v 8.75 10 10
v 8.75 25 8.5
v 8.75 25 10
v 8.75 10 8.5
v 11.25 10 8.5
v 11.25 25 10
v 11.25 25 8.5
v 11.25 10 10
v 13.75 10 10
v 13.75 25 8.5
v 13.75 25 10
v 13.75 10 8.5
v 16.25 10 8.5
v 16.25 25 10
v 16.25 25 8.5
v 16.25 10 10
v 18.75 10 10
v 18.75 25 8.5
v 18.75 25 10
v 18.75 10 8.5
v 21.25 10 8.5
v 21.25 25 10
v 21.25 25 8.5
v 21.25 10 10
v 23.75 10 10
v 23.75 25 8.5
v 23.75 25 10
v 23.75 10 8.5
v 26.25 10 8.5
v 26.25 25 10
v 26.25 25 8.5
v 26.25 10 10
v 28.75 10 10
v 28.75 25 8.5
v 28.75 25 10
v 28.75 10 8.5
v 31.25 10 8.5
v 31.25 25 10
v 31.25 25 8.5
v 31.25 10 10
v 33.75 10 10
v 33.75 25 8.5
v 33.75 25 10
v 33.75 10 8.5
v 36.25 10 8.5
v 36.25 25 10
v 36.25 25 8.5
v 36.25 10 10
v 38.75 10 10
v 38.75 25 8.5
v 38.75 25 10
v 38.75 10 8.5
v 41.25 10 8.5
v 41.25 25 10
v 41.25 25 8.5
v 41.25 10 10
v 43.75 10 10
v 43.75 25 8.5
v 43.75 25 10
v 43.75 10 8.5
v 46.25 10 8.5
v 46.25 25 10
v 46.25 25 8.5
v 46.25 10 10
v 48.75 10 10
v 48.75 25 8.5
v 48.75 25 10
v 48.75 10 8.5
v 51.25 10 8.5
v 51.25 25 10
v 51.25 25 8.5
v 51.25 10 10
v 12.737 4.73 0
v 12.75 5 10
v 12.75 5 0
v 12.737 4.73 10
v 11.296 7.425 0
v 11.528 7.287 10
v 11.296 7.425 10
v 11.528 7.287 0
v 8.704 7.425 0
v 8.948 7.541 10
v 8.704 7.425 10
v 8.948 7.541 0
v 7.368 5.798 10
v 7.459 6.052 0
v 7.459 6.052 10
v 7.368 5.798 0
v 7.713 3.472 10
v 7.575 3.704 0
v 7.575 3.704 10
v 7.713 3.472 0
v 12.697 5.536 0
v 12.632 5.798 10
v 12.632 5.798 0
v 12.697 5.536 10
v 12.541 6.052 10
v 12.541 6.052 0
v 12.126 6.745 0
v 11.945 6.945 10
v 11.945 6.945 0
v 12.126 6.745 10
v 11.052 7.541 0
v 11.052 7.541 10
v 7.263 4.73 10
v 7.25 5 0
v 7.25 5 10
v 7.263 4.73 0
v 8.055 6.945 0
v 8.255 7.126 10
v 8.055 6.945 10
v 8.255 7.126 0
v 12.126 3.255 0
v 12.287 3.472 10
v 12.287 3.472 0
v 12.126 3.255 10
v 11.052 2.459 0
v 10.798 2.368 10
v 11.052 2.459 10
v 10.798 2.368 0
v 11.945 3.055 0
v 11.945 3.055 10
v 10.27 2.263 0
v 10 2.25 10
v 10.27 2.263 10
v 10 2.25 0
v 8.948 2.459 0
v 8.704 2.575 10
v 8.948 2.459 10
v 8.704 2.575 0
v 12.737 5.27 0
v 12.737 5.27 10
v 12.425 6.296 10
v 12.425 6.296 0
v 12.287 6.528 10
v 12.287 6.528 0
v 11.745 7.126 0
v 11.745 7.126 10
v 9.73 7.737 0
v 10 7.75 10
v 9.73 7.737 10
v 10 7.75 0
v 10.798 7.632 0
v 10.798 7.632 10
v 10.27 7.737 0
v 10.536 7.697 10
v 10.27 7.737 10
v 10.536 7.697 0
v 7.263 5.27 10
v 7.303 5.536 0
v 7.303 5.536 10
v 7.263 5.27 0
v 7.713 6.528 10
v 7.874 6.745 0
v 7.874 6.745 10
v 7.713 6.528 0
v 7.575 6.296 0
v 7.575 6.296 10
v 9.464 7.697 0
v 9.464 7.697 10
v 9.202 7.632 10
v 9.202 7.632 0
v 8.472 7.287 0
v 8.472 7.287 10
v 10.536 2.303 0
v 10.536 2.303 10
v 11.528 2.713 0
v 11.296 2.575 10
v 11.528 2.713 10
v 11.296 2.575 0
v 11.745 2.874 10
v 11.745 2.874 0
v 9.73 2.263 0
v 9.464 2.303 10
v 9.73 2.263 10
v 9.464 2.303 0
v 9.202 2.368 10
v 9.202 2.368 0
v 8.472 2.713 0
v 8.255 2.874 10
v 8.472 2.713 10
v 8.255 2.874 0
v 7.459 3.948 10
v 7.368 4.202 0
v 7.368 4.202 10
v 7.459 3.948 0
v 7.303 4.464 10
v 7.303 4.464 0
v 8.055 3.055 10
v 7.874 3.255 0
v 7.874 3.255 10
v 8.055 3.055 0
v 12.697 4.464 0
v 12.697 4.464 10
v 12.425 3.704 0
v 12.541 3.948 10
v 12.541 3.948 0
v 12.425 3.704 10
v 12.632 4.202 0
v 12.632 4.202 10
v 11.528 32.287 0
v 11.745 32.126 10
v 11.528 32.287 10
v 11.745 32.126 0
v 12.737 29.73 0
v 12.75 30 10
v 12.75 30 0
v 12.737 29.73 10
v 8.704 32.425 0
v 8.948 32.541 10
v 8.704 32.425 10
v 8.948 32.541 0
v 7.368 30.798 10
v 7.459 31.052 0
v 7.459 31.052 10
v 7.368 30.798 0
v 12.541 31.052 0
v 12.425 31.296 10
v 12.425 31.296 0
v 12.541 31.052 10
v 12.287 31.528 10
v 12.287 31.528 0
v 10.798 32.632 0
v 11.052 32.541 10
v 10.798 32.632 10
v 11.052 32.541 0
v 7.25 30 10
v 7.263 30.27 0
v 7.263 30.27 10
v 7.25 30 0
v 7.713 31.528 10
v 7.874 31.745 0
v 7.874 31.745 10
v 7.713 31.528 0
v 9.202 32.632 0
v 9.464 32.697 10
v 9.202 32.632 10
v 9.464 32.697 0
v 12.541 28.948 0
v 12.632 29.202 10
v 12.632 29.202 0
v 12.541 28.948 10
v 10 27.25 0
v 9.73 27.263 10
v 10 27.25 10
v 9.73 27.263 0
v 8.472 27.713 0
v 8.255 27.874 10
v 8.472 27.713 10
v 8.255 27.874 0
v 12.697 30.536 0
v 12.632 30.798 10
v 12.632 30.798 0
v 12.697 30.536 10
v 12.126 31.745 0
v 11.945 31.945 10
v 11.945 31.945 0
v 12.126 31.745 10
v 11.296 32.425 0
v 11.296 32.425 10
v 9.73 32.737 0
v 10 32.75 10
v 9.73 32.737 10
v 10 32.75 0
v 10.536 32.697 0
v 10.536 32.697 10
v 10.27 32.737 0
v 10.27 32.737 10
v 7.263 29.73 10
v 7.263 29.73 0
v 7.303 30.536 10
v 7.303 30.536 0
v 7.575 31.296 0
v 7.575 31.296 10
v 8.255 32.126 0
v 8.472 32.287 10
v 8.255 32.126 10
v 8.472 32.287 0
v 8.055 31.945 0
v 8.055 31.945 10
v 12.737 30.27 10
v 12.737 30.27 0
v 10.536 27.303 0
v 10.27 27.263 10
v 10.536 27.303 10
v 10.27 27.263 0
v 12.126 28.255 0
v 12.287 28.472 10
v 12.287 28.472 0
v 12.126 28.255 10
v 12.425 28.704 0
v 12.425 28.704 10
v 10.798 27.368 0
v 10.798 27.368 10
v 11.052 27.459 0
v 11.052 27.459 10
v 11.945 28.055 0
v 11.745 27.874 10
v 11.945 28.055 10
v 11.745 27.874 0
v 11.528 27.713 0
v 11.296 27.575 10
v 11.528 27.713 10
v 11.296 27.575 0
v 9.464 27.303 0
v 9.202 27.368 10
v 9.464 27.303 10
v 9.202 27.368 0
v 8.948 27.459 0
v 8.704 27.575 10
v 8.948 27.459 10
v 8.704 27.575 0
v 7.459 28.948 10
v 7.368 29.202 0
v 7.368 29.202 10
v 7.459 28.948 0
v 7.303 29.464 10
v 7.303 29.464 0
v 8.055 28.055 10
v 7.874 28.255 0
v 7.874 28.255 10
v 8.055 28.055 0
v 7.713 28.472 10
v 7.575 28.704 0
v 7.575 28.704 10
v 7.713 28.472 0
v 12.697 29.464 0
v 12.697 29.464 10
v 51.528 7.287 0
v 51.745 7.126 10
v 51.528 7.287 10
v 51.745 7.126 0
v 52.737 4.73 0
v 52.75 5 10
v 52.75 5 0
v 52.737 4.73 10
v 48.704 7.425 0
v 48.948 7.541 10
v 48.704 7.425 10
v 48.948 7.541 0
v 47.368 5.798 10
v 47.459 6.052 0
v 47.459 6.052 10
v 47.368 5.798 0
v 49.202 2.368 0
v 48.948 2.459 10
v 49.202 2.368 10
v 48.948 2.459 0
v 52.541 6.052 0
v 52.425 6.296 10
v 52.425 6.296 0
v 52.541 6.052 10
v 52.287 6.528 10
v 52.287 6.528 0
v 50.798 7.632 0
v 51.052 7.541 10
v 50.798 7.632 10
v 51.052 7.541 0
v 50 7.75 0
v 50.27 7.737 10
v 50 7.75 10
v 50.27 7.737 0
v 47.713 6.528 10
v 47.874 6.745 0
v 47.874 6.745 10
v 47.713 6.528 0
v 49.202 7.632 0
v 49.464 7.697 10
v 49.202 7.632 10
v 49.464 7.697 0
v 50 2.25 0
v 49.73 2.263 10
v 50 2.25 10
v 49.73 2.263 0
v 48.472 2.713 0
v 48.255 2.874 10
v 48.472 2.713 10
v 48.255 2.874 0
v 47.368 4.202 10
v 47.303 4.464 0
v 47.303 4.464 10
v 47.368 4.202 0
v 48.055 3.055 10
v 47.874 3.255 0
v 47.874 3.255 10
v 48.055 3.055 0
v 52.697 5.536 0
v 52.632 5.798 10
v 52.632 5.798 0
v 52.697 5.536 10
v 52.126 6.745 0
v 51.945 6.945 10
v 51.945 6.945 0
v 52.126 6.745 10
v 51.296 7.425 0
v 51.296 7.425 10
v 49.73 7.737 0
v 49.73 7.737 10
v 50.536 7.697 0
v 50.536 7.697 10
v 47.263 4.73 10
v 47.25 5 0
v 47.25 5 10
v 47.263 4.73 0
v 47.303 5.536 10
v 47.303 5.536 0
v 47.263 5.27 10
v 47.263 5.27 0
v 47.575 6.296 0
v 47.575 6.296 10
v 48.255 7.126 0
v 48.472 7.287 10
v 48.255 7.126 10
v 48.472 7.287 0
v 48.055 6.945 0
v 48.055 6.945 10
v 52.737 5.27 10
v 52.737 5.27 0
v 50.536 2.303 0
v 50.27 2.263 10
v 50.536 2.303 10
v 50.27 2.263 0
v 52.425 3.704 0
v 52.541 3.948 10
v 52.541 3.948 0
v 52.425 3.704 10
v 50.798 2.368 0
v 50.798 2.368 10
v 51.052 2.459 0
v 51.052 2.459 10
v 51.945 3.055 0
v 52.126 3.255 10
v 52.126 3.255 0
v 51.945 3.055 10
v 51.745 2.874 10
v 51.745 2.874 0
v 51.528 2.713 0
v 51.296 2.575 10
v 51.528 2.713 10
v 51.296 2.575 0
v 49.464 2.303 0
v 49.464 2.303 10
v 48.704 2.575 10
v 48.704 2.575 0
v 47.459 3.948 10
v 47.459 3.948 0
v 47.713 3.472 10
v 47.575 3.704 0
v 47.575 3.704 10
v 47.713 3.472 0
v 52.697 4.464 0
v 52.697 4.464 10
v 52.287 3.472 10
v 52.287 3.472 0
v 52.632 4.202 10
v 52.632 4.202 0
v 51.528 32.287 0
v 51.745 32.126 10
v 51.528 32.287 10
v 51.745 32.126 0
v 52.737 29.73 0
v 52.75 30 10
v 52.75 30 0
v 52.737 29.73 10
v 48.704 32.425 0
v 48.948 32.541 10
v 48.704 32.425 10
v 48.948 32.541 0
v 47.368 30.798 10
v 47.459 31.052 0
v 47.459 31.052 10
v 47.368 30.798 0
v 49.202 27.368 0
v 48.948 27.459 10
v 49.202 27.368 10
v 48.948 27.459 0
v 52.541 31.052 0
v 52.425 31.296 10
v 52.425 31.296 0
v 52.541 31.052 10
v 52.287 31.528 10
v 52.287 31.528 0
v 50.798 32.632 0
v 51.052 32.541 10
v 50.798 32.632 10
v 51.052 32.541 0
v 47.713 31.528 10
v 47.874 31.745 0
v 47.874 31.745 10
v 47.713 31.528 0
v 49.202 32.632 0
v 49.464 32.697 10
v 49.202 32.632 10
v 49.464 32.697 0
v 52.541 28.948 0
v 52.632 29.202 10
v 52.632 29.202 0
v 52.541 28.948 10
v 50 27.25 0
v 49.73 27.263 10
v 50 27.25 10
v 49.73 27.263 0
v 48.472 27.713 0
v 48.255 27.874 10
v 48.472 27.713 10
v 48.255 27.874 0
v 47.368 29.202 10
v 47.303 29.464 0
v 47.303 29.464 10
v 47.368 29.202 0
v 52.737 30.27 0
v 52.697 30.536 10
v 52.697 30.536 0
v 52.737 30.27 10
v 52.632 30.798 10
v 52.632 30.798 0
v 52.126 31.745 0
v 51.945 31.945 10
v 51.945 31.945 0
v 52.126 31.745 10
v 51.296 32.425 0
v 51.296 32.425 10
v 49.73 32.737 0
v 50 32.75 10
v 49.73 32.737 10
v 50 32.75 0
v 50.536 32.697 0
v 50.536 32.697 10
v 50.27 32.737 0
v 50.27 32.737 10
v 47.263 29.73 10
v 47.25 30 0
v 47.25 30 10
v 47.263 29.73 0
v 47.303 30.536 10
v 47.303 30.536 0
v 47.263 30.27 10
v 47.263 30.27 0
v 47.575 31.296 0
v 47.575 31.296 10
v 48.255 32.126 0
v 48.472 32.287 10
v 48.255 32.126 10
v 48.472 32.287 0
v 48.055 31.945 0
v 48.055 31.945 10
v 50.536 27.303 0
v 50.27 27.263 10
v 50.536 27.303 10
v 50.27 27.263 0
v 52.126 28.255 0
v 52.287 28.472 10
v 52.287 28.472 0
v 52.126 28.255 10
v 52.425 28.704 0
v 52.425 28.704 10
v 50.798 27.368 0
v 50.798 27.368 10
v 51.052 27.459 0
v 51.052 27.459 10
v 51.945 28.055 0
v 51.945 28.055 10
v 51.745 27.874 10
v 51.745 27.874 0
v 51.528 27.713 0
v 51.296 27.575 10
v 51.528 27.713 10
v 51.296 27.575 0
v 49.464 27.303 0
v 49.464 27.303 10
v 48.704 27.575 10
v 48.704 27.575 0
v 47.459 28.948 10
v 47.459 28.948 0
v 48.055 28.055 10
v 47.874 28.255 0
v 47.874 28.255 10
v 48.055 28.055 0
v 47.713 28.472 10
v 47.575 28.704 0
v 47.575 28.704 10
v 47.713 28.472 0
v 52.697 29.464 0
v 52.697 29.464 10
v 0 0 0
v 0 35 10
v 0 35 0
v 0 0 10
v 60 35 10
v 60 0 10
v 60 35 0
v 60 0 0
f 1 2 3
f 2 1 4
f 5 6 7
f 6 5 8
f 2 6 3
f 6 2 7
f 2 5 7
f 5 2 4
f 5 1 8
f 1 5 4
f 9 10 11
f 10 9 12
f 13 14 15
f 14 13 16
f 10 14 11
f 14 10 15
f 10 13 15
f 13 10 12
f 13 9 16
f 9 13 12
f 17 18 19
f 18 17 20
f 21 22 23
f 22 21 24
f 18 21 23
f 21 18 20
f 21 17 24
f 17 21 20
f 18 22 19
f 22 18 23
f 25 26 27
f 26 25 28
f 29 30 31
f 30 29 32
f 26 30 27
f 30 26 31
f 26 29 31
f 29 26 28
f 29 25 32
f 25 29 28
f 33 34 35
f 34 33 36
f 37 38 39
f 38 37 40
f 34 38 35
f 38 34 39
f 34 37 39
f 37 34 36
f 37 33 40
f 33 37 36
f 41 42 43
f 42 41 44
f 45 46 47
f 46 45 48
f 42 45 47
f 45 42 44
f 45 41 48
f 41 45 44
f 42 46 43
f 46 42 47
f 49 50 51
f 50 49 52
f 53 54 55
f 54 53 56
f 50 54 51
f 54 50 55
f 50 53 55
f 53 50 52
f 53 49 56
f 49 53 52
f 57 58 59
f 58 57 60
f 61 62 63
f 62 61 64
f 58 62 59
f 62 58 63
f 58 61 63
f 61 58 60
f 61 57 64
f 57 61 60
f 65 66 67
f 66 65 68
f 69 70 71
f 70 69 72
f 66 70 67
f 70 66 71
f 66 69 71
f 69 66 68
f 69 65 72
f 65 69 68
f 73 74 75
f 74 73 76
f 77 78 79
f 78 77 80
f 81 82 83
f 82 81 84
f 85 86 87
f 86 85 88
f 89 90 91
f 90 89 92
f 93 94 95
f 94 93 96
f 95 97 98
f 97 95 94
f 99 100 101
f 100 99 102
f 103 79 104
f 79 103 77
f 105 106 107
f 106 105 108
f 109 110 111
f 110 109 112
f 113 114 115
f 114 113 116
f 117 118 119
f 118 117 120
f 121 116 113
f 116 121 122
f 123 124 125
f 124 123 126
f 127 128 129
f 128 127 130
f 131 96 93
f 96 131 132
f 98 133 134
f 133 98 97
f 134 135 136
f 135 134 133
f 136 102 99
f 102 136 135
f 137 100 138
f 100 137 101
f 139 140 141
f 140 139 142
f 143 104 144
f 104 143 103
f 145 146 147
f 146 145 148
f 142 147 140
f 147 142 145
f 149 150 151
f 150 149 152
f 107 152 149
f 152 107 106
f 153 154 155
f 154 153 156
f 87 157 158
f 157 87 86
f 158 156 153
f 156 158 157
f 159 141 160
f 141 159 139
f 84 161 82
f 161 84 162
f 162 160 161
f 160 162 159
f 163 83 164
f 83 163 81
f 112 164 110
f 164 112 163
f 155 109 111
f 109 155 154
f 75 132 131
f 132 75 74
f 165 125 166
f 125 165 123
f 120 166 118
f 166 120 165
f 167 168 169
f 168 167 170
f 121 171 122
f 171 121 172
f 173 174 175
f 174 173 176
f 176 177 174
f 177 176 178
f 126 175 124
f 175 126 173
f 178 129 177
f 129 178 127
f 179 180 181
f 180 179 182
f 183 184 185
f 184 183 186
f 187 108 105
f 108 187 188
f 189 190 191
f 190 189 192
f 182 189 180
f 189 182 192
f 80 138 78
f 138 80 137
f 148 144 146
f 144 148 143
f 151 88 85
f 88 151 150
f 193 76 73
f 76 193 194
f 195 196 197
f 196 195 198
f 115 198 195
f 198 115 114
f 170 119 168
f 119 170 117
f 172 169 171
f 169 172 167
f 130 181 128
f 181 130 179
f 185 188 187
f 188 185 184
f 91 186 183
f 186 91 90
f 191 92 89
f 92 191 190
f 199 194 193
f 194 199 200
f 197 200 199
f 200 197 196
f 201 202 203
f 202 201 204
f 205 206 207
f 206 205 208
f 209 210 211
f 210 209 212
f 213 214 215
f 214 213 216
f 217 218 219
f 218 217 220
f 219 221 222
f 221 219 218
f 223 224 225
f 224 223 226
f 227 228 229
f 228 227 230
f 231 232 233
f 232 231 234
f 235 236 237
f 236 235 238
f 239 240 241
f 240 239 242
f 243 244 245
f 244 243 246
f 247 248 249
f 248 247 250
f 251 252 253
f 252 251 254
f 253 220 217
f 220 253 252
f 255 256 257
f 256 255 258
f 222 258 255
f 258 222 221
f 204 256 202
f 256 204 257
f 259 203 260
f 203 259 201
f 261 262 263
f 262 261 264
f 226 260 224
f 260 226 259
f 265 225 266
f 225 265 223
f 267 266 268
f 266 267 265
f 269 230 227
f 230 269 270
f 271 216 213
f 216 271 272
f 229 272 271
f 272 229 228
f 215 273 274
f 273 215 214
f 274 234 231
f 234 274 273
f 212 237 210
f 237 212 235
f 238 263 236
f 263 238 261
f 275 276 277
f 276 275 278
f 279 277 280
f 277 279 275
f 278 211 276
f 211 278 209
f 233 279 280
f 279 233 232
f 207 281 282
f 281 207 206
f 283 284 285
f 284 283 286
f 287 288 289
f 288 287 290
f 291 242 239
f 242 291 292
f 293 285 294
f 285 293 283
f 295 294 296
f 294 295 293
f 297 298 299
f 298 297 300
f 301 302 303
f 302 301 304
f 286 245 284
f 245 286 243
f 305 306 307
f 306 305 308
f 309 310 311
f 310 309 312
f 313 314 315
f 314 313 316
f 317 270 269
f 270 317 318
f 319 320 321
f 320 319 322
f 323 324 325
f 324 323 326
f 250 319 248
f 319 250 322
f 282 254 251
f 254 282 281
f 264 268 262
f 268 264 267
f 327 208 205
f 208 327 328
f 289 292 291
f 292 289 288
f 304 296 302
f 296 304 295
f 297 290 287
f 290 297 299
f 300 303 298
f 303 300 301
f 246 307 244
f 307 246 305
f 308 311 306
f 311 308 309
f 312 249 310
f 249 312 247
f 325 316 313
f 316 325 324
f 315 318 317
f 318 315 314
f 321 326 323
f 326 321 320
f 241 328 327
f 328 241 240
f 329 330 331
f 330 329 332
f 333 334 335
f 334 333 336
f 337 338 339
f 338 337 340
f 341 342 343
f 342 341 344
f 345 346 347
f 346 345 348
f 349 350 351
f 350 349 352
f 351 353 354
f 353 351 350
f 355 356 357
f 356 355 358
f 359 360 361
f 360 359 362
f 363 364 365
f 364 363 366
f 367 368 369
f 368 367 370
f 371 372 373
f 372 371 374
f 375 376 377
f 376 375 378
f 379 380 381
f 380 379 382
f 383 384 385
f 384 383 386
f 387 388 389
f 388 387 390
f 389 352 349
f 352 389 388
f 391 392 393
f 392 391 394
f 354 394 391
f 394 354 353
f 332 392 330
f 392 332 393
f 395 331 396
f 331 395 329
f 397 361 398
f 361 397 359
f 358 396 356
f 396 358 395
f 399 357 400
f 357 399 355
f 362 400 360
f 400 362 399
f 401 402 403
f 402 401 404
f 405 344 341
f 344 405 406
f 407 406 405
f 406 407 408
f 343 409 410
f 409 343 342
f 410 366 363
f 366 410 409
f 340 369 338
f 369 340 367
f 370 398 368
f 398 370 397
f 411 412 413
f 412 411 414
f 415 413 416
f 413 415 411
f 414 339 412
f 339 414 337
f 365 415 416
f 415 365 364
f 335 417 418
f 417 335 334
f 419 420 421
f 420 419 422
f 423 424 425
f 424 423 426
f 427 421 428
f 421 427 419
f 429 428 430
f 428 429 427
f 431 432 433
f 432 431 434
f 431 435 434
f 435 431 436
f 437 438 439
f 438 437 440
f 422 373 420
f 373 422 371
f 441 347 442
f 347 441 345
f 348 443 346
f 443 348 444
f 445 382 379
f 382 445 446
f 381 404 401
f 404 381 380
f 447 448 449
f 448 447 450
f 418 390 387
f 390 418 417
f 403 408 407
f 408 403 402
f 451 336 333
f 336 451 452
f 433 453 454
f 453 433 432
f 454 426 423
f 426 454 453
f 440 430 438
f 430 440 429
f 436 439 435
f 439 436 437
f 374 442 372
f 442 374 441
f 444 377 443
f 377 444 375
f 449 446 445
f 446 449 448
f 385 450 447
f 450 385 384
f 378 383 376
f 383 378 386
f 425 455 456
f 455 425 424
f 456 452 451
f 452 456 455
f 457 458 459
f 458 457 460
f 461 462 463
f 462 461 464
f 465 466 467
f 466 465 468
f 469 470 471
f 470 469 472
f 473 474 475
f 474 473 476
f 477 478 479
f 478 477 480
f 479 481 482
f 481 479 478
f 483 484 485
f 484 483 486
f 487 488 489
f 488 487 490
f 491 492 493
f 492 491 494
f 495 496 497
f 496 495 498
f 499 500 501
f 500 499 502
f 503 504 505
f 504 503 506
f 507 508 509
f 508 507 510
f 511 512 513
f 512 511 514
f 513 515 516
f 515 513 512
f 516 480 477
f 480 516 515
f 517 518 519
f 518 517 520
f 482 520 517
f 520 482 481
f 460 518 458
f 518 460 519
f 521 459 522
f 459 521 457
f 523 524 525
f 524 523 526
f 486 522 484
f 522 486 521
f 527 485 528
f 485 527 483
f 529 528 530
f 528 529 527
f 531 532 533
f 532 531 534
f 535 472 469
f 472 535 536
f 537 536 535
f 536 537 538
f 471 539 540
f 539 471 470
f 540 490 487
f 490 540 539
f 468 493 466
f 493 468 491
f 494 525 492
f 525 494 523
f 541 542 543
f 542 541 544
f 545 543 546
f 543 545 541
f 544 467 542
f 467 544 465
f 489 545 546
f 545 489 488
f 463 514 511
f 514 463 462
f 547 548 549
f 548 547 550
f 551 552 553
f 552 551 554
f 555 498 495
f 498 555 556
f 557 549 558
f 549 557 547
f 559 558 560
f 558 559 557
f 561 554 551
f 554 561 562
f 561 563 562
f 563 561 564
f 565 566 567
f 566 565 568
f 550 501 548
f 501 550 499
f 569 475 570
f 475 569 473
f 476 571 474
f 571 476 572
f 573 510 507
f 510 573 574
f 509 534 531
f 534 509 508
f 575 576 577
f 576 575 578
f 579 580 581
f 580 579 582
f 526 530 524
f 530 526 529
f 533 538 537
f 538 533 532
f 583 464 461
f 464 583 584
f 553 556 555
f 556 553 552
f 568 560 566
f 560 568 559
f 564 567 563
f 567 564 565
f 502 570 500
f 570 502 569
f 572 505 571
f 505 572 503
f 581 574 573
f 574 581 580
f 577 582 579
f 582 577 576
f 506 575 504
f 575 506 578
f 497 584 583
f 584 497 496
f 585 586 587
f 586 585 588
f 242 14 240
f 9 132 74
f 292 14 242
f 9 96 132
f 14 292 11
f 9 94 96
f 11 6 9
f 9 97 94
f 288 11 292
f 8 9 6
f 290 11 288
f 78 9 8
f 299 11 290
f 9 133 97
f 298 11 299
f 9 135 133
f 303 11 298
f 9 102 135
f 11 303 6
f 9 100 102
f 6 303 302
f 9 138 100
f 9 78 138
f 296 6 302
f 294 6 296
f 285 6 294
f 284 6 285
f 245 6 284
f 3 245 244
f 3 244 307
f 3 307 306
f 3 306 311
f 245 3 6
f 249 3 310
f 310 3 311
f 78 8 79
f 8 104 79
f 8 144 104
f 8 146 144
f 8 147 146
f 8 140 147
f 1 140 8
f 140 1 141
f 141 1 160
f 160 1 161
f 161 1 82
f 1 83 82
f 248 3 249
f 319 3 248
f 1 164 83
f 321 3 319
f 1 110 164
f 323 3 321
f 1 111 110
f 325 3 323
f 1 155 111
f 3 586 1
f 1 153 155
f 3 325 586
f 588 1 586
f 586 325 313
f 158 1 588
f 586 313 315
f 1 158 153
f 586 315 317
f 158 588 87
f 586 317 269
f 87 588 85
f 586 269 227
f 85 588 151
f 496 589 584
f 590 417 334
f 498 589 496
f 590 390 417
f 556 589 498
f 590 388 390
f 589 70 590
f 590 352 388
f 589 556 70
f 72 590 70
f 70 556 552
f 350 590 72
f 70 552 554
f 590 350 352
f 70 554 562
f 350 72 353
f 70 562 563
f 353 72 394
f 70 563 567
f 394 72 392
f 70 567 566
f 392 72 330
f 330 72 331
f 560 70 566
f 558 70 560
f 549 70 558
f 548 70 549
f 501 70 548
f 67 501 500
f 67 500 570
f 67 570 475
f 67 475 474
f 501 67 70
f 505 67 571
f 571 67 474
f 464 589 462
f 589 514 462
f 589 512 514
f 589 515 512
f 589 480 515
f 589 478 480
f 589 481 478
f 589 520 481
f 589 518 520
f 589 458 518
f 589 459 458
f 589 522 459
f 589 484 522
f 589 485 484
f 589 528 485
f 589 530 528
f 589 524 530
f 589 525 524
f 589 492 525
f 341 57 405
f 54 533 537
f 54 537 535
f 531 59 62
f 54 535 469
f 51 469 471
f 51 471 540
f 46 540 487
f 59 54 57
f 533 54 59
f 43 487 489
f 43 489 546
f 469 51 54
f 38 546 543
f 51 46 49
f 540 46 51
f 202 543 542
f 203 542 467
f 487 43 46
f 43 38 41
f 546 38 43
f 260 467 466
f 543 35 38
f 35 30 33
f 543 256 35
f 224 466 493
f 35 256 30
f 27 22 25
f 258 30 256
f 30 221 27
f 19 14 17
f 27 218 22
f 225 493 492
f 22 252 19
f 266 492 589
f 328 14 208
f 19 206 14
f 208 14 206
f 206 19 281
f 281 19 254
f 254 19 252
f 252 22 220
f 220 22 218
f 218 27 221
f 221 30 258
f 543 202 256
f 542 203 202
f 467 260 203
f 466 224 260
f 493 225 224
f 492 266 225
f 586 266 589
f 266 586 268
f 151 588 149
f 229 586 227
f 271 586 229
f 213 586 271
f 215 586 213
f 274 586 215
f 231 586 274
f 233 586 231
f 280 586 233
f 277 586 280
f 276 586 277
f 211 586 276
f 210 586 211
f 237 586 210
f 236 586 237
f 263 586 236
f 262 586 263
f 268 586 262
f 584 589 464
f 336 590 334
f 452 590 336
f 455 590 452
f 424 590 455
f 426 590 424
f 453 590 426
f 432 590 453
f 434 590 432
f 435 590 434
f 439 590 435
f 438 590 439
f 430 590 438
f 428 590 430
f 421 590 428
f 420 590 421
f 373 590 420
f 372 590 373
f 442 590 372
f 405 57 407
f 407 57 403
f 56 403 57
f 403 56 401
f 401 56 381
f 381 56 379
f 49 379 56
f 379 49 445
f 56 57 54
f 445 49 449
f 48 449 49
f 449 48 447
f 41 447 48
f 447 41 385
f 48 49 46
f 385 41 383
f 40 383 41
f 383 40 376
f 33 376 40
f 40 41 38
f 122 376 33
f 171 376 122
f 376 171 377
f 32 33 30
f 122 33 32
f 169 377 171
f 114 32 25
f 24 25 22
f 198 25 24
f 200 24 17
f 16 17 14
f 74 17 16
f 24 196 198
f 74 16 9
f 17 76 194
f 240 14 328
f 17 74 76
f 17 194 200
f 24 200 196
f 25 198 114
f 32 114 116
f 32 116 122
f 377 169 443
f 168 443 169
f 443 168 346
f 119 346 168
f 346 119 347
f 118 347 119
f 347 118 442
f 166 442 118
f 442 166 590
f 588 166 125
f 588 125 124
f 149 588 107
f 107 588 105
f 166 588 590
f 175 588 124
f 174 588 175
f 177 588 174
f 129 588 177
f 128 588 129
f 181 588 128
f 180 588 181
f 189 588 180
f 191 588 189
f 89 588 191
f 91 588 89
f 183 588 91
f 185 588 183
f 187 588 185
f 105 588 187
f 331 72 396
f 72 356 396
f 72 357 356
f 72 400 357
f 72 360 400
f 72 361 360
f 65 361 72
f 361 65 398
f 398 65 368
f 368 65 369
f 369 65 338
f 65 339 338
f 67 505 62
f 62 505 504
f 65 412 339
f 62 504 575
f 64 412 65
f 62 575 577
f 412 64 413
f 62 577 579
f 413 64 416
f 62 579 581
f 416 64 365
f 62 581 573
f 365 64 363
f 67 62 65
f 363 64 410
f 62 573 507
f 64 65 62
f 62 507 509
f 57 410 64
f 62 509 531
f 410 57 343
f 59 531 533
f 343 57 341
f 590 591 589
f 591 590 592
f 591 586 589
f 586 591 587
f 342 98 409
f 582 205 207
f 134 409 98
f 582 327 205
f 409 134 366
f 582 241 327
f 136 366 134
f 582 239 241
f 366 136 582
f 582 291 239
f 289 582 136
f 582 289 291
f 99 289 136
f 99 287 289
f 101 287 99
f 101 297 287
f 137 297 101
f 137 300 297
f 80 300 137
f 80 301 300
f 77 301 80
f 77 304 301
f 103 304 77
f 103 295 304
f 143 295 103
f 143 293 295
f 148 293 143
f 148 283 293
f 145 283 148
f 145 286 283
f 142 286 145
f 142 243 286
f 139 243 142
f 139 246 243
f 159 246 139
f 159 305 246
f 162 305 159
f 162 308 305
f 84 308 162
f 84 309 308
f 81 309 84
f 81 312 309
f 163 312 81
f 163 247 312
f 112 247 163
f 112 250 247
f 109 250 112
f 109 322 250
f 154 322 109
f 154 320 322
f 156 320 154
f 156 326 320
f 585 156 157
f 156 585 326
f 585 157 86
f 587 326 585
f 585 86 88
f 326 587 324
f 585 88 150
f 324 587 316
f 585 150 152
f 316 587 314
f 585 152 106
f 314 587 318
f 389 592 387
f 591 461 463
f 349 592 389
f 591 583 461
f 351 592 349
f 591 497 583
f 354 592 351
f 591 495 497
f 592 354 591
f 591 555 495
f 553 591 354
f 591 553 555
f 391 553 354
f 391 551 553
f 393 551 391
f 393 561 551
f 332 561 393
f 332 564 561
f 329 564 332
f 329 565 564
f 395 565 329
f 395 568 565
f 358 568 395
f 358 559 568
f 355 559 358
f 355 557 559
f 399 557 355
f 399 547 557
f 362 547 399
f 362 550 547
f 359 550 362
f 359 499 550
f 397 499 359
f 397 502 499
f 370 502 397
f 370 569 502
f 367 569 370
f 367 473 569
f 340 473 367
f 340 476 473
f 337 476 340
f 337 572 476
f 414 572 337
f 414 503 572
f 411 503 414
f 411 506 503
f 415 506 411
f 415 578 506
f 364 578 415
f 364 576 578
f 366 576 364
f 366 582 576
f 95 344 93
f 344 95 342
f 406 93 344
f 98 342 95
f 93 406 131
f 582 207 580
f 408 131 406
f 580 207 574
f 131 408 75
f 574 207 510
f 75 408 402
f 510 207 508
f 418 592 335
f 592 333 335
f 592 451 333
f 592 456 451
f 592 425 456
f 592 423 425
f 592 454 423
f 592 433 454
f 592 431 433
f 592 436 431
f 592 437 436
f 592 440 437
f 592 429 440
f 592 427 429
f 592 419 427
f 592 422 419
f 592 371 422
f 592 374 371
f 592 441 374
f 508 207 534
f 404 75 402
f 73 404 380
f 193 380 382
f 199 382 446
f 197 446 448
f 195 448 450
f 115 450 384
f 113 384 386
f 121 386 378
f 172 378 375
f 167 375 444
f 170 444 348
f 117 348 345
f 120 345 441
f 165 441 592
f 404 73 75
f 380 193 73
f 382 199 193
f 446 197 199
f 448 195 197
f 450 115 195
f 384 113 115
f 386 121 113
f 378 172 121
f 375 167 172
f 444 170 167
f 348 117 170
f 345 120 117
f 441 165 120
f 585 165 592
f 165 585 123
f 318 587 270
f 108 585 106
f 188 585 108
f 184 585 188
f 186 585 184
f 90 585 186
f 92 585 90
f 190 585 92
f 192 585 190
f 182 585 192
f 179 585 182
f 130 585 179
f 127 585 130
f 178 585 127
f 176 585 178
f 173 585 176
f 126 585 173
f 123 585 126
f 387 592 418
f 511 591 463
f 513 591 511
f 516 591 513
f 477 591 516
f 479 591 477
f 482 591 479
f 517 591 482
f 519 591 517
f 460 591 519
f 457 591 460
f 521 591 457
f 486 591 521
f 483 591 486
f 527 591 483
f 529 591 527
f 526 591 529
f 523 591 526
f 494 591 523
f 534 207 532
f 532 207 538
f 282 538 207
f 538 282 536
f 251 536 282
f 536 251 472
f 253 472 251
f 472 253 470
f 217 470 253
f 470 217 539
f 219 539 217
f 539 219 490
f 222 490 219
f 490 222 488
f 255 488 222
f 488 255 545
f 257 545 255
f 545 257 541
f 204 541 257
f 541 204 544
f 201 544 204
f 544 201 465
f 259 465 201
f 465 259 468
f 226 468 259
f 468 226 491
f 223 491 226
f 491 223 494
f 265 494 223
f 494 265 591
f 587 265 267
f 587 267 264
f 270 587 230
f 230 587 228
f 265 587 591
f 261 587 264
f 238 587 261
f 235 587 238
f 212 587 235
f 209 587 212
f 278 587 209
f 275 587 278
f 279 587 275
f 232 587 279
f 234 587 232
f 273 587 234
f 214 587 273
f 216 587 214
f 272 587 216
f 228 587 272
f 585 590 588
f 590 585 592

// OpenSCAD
// Original MechIntel educational model. CC0-1.0. Units: mm.
// Not a standardized or load-rated component.
$fn=96;
length=60; width=35; thickness=10; belt_width=15; pitch=5; groove_width=2.5; groove_depth=1.5;
$fn=64;
difference(){
 cube([length,width,thickness]);
 for(x=[10:pitch:length-10]) translate([x-groove_width/2,(width-belt_width)/2,thickness-groove_depth]) cube([groove_width,belt_width,groove_depth+1]);
 for(x=[10,length-10]) for(y=[5,width-5]) translate([x,y,-1]) cylinder(d=5.5,h=thickness+2);
}
